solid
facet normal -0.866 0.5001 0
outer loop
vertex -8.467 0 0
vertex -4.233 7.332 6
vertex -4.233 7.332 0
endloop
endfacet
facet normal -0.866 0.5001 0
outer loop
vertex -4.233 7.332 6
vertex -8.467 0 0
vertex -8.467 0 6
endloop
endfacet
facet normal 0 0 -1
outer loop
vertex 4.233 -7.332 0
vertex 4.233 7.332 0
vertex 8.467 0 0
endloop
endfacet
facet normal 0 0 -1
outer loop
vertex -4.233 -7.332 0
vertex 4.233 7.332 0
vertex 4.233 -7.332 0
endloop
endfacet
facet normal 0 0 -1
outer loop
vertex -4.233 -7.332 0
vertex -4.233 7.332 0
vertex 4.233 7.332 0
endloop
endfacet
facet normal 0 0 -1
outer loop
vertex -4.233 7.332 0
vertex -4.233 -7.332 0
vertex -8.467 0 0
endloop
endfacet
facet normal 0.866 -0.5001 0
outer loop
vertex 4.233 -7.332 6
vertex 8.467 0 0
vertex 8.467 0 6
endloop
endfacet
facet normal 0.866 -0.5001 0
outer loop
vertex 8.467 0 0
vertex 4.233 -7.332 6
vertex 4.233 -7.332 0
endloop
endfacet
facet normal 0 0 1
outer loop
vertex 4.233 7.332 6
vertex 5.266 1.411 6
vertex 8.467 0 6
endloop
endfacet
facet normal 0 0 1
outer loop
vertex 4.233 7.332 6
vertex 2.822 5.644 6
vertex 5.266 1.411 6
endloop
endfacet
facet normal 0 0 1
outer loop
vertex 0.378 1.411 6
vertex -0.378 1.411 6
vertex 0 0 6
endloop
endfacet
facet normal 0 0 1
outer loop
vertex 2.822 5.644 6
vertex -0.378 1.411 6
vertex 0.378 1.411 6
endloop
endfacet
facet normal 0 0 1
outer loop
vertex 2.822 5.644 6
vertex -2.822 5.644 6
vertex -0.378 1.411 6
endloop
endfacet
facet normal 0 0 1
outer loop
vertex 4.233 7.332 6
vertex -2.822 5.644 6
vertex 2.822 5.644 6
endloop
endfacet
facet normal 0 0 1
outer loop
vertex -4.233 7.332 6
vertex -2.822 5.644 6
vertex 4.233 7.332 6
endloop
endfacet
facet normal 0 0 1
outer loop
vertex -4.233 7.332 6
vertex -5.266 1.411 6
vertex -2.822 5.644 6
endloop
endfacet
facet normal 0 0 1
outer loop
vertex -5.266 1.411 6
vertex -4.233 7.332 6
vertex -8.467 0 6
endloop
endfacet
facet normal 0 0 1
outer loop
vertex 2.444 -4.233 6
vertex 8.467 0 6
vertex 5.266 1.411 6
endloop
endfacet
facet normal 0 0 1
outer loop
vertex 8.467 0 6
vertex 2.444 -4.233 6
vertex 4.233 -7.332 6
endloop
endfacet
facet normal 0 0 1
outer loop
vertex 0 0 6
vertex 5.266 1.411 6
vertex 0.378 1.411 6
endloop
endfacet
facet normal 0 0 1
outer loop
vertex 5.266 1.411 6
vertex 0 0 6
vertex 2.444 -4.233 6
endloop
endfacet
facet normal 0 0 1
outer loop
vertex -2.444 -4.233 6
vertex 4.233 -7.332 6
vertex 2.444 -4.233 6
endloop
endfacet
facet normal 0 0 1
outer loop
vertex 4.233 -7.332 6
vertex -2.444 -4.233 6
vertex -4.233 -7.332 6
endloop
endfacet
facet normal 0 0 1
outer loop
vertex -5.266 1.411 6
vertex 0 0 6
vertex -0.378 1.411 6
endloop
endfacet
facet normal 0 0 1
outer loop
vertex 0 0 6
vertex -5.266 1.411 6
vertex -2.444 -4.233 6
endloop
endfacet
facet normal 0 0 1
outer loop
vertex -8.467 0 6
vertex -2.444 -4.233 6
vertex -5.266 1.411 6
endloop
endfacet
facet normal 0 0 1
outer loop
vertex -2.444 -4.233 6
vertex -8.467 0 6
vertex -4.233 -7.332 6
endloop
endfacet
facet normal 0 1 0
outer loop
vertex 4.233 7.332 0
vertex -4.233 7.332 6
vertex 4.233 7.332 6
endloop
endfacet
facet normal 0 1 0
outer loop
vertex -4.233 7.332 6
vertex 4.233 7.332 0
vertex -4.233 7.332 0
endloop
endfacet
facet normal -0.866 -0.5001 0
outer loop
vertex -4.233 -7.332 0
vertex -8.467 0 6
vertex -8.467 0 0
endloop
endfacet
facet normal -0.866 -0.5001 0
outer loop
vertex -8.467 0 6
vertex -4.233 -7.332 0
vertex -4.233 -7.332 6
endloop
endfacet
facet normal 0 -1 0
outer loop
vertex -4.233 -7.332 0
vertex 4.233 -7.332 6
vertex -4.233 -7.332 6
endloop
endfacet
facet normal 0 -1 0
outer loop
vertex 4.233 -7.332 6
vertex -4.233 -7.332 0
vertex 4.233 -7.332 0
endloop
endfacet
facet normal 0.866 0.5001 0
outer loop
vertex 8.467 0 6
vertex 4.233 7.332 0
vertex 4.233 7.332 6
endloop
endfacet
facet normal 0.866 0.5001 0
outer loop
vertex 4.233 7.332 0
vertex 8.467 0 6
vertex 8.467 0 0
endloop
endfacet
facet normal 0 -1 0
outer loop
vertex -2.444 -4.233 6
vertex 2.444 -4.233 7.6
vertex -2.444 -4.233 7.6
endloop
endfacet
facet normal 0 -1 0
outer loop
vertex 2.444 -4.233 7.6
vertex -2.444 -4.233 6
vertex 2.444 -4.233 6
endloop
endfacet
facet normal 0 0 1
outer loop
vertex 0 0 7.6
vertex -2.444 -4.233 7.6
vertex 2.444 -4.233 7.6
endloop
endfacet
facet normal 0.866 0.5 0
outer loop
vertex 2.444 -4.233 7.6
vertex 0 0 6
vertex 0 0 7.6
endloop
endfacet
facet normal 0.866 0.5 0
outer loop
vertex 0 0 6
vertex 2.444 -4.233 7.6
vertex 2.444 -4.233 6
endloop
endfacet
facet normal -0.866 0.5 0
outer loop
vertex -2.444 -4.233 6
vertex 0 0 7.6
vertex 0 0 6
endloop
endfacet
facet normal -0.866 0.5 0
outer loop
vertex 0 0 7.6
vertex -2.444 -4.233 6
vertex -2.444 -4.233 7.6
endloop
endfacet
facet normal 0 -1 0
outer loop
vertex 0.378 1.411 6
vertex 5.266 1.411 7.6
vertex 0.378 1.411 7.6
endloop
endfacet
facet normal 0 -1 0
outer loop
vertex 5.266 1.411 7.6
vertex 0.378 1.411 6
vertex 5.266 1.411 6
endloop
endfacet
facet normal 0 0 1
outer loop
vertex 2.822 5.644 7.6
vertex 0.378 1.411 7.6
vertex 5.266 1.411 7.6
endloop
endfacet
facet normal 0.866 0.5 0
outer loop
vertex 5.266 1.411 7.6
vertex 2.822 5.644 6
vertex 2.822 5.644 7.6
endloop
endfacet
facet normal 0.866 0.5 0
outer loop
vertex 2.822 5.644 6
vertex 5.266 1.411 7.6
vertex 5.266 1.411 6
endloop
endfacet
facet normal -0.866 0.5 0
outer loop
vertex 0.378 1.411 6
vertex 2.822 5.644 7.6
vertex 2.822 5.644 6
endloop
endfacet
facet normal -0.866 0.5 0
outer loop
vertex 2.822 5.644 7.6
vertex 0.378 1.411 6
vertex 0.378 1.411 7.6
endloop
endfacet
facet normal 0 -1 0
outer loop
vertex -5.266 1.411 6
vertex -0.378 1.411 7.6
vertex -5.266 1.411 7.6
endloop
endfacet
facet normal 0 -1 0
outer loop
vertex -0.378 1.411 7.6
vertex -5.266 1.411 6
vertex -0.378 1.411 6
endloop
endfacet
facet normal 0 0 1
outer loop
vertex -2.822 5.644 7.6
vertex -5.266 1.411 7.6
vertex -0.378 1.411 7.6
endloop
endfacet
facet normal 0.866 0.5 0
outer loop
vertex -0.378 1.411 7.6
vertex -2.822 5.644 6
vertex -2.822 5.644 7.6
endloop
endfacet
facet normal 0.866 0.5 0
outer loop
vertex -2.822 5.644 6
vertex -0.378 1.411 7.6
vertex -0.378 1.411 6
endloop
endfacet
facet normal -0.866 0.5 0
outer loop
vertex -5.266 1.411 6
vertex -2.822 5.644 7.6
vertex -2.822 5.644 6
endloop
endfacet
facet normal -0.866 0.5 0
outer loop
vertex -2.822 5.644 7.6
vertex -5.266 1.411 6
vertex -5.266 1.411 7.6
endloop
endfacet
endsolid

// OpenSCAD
// file: ../library/calculate.scad
module inlay(depth)
{
    difference()
    {
        children(0);
        translate([ 0, 0, depth ]) children([1:$children - 1]);
    }
}
// file: ../library/variables.scad
// Variables

die_width = 12;
double_digit_placement = 1; // 0.7 for 8mm, 1 for 12mm

wiggle_width = 0.2;
separator = 1.6;
base_plate_sides = 5;
token_sides = 6;
slot_height = 1;

// Calculations

height = die_width / 2;

die_slot_width = die_width + wiggle_width;
die_slot_y = -1 * ((die_slot_width / 2) + separator);
die_slot_right_x = (die_slot_width / 2) + separator;
die_slot_left_x = -1 * (die_slot_width / 2) - separator;

base_plate_size = (die_slot_width * 2) + separator;
inset_width = base_plate_size - separator;
inset_depth = height - separator;

shallow_slot_height = (height - inset_depth) / 2;

token_slot_width = base_plate_size / 3;
token_width = token_slot_width - wiggle_width;
token_height = height;
token_slot_y = (die_slot_width / 2) + (separator * 2);
token_inset_height = token_height - 1;
token_doubledigit_font_size = token_width - separator;

token_poison_width = (token_width / 3);
token_poison_placement = (token_width / 3);
// file: ../library/tokens.scad
include <variables.scad>
include <calculate.scad>

module token_base()
{
    linear_extrude(token_height) circle(token_width, $fn = token_sides);
}

module token_doubledigit_number(num) 
{
    inlay(depth = token_inset_height) 
    {
        token_base();
        translate([-1 * token_doubledigit_font_size + double_digit_placement, -1 * token_doubledigit_font_size / 2, 0]) linear_extrude(token_height) text(text = num, size = token_doubledigit_font_size);
        translate([-1 * token_doubledigit_font_size / 2, -1 * token_doubledigit_font_size, 0]) cube([token_doubledigit_font_size, 1, 2]);
    }
}

module token_singledigit_number(num) 
{ 
    inlay(depth = token_inset_height) 
    {
        token_base();
        translate([-1 * (token_doubledigit_font_size / 2), -1 * token_doubledigit_font_size / 2, 0]) linear_extrude(token_height) text(text = num, size = token_doubledigit_font_size);
        translate([-1 * token_doubledigit_font_size / 2, -1 * token_doubledigit_font_size, 0]) cube([token_doubledigit_font_size, 1, 2]);
    }
}
// file: ../library/extrusions.scad
include <variables.scad>

module poison_triangle()
{
    rotate([ 0, 0, 90 ]) linear_extrude(height = token_height + separator) circle(token_poison_width, $fn = 3);
}
// main file
include <../library/extrusions.scad>
include <../library/tokens.scad>
include <../library/variables.scad>

// Hexagon
token_base();

// Three protrusions
translate([ 0, -1 * token_poison_placement, 0 ]) poison_triangle();
translate([ token_poison_placement, token_poison_placement, 0 ]) poison_triangle();
translate([ -1 * token_poison_placement, token_poison_placement, 0 ]) poison_triangle();
